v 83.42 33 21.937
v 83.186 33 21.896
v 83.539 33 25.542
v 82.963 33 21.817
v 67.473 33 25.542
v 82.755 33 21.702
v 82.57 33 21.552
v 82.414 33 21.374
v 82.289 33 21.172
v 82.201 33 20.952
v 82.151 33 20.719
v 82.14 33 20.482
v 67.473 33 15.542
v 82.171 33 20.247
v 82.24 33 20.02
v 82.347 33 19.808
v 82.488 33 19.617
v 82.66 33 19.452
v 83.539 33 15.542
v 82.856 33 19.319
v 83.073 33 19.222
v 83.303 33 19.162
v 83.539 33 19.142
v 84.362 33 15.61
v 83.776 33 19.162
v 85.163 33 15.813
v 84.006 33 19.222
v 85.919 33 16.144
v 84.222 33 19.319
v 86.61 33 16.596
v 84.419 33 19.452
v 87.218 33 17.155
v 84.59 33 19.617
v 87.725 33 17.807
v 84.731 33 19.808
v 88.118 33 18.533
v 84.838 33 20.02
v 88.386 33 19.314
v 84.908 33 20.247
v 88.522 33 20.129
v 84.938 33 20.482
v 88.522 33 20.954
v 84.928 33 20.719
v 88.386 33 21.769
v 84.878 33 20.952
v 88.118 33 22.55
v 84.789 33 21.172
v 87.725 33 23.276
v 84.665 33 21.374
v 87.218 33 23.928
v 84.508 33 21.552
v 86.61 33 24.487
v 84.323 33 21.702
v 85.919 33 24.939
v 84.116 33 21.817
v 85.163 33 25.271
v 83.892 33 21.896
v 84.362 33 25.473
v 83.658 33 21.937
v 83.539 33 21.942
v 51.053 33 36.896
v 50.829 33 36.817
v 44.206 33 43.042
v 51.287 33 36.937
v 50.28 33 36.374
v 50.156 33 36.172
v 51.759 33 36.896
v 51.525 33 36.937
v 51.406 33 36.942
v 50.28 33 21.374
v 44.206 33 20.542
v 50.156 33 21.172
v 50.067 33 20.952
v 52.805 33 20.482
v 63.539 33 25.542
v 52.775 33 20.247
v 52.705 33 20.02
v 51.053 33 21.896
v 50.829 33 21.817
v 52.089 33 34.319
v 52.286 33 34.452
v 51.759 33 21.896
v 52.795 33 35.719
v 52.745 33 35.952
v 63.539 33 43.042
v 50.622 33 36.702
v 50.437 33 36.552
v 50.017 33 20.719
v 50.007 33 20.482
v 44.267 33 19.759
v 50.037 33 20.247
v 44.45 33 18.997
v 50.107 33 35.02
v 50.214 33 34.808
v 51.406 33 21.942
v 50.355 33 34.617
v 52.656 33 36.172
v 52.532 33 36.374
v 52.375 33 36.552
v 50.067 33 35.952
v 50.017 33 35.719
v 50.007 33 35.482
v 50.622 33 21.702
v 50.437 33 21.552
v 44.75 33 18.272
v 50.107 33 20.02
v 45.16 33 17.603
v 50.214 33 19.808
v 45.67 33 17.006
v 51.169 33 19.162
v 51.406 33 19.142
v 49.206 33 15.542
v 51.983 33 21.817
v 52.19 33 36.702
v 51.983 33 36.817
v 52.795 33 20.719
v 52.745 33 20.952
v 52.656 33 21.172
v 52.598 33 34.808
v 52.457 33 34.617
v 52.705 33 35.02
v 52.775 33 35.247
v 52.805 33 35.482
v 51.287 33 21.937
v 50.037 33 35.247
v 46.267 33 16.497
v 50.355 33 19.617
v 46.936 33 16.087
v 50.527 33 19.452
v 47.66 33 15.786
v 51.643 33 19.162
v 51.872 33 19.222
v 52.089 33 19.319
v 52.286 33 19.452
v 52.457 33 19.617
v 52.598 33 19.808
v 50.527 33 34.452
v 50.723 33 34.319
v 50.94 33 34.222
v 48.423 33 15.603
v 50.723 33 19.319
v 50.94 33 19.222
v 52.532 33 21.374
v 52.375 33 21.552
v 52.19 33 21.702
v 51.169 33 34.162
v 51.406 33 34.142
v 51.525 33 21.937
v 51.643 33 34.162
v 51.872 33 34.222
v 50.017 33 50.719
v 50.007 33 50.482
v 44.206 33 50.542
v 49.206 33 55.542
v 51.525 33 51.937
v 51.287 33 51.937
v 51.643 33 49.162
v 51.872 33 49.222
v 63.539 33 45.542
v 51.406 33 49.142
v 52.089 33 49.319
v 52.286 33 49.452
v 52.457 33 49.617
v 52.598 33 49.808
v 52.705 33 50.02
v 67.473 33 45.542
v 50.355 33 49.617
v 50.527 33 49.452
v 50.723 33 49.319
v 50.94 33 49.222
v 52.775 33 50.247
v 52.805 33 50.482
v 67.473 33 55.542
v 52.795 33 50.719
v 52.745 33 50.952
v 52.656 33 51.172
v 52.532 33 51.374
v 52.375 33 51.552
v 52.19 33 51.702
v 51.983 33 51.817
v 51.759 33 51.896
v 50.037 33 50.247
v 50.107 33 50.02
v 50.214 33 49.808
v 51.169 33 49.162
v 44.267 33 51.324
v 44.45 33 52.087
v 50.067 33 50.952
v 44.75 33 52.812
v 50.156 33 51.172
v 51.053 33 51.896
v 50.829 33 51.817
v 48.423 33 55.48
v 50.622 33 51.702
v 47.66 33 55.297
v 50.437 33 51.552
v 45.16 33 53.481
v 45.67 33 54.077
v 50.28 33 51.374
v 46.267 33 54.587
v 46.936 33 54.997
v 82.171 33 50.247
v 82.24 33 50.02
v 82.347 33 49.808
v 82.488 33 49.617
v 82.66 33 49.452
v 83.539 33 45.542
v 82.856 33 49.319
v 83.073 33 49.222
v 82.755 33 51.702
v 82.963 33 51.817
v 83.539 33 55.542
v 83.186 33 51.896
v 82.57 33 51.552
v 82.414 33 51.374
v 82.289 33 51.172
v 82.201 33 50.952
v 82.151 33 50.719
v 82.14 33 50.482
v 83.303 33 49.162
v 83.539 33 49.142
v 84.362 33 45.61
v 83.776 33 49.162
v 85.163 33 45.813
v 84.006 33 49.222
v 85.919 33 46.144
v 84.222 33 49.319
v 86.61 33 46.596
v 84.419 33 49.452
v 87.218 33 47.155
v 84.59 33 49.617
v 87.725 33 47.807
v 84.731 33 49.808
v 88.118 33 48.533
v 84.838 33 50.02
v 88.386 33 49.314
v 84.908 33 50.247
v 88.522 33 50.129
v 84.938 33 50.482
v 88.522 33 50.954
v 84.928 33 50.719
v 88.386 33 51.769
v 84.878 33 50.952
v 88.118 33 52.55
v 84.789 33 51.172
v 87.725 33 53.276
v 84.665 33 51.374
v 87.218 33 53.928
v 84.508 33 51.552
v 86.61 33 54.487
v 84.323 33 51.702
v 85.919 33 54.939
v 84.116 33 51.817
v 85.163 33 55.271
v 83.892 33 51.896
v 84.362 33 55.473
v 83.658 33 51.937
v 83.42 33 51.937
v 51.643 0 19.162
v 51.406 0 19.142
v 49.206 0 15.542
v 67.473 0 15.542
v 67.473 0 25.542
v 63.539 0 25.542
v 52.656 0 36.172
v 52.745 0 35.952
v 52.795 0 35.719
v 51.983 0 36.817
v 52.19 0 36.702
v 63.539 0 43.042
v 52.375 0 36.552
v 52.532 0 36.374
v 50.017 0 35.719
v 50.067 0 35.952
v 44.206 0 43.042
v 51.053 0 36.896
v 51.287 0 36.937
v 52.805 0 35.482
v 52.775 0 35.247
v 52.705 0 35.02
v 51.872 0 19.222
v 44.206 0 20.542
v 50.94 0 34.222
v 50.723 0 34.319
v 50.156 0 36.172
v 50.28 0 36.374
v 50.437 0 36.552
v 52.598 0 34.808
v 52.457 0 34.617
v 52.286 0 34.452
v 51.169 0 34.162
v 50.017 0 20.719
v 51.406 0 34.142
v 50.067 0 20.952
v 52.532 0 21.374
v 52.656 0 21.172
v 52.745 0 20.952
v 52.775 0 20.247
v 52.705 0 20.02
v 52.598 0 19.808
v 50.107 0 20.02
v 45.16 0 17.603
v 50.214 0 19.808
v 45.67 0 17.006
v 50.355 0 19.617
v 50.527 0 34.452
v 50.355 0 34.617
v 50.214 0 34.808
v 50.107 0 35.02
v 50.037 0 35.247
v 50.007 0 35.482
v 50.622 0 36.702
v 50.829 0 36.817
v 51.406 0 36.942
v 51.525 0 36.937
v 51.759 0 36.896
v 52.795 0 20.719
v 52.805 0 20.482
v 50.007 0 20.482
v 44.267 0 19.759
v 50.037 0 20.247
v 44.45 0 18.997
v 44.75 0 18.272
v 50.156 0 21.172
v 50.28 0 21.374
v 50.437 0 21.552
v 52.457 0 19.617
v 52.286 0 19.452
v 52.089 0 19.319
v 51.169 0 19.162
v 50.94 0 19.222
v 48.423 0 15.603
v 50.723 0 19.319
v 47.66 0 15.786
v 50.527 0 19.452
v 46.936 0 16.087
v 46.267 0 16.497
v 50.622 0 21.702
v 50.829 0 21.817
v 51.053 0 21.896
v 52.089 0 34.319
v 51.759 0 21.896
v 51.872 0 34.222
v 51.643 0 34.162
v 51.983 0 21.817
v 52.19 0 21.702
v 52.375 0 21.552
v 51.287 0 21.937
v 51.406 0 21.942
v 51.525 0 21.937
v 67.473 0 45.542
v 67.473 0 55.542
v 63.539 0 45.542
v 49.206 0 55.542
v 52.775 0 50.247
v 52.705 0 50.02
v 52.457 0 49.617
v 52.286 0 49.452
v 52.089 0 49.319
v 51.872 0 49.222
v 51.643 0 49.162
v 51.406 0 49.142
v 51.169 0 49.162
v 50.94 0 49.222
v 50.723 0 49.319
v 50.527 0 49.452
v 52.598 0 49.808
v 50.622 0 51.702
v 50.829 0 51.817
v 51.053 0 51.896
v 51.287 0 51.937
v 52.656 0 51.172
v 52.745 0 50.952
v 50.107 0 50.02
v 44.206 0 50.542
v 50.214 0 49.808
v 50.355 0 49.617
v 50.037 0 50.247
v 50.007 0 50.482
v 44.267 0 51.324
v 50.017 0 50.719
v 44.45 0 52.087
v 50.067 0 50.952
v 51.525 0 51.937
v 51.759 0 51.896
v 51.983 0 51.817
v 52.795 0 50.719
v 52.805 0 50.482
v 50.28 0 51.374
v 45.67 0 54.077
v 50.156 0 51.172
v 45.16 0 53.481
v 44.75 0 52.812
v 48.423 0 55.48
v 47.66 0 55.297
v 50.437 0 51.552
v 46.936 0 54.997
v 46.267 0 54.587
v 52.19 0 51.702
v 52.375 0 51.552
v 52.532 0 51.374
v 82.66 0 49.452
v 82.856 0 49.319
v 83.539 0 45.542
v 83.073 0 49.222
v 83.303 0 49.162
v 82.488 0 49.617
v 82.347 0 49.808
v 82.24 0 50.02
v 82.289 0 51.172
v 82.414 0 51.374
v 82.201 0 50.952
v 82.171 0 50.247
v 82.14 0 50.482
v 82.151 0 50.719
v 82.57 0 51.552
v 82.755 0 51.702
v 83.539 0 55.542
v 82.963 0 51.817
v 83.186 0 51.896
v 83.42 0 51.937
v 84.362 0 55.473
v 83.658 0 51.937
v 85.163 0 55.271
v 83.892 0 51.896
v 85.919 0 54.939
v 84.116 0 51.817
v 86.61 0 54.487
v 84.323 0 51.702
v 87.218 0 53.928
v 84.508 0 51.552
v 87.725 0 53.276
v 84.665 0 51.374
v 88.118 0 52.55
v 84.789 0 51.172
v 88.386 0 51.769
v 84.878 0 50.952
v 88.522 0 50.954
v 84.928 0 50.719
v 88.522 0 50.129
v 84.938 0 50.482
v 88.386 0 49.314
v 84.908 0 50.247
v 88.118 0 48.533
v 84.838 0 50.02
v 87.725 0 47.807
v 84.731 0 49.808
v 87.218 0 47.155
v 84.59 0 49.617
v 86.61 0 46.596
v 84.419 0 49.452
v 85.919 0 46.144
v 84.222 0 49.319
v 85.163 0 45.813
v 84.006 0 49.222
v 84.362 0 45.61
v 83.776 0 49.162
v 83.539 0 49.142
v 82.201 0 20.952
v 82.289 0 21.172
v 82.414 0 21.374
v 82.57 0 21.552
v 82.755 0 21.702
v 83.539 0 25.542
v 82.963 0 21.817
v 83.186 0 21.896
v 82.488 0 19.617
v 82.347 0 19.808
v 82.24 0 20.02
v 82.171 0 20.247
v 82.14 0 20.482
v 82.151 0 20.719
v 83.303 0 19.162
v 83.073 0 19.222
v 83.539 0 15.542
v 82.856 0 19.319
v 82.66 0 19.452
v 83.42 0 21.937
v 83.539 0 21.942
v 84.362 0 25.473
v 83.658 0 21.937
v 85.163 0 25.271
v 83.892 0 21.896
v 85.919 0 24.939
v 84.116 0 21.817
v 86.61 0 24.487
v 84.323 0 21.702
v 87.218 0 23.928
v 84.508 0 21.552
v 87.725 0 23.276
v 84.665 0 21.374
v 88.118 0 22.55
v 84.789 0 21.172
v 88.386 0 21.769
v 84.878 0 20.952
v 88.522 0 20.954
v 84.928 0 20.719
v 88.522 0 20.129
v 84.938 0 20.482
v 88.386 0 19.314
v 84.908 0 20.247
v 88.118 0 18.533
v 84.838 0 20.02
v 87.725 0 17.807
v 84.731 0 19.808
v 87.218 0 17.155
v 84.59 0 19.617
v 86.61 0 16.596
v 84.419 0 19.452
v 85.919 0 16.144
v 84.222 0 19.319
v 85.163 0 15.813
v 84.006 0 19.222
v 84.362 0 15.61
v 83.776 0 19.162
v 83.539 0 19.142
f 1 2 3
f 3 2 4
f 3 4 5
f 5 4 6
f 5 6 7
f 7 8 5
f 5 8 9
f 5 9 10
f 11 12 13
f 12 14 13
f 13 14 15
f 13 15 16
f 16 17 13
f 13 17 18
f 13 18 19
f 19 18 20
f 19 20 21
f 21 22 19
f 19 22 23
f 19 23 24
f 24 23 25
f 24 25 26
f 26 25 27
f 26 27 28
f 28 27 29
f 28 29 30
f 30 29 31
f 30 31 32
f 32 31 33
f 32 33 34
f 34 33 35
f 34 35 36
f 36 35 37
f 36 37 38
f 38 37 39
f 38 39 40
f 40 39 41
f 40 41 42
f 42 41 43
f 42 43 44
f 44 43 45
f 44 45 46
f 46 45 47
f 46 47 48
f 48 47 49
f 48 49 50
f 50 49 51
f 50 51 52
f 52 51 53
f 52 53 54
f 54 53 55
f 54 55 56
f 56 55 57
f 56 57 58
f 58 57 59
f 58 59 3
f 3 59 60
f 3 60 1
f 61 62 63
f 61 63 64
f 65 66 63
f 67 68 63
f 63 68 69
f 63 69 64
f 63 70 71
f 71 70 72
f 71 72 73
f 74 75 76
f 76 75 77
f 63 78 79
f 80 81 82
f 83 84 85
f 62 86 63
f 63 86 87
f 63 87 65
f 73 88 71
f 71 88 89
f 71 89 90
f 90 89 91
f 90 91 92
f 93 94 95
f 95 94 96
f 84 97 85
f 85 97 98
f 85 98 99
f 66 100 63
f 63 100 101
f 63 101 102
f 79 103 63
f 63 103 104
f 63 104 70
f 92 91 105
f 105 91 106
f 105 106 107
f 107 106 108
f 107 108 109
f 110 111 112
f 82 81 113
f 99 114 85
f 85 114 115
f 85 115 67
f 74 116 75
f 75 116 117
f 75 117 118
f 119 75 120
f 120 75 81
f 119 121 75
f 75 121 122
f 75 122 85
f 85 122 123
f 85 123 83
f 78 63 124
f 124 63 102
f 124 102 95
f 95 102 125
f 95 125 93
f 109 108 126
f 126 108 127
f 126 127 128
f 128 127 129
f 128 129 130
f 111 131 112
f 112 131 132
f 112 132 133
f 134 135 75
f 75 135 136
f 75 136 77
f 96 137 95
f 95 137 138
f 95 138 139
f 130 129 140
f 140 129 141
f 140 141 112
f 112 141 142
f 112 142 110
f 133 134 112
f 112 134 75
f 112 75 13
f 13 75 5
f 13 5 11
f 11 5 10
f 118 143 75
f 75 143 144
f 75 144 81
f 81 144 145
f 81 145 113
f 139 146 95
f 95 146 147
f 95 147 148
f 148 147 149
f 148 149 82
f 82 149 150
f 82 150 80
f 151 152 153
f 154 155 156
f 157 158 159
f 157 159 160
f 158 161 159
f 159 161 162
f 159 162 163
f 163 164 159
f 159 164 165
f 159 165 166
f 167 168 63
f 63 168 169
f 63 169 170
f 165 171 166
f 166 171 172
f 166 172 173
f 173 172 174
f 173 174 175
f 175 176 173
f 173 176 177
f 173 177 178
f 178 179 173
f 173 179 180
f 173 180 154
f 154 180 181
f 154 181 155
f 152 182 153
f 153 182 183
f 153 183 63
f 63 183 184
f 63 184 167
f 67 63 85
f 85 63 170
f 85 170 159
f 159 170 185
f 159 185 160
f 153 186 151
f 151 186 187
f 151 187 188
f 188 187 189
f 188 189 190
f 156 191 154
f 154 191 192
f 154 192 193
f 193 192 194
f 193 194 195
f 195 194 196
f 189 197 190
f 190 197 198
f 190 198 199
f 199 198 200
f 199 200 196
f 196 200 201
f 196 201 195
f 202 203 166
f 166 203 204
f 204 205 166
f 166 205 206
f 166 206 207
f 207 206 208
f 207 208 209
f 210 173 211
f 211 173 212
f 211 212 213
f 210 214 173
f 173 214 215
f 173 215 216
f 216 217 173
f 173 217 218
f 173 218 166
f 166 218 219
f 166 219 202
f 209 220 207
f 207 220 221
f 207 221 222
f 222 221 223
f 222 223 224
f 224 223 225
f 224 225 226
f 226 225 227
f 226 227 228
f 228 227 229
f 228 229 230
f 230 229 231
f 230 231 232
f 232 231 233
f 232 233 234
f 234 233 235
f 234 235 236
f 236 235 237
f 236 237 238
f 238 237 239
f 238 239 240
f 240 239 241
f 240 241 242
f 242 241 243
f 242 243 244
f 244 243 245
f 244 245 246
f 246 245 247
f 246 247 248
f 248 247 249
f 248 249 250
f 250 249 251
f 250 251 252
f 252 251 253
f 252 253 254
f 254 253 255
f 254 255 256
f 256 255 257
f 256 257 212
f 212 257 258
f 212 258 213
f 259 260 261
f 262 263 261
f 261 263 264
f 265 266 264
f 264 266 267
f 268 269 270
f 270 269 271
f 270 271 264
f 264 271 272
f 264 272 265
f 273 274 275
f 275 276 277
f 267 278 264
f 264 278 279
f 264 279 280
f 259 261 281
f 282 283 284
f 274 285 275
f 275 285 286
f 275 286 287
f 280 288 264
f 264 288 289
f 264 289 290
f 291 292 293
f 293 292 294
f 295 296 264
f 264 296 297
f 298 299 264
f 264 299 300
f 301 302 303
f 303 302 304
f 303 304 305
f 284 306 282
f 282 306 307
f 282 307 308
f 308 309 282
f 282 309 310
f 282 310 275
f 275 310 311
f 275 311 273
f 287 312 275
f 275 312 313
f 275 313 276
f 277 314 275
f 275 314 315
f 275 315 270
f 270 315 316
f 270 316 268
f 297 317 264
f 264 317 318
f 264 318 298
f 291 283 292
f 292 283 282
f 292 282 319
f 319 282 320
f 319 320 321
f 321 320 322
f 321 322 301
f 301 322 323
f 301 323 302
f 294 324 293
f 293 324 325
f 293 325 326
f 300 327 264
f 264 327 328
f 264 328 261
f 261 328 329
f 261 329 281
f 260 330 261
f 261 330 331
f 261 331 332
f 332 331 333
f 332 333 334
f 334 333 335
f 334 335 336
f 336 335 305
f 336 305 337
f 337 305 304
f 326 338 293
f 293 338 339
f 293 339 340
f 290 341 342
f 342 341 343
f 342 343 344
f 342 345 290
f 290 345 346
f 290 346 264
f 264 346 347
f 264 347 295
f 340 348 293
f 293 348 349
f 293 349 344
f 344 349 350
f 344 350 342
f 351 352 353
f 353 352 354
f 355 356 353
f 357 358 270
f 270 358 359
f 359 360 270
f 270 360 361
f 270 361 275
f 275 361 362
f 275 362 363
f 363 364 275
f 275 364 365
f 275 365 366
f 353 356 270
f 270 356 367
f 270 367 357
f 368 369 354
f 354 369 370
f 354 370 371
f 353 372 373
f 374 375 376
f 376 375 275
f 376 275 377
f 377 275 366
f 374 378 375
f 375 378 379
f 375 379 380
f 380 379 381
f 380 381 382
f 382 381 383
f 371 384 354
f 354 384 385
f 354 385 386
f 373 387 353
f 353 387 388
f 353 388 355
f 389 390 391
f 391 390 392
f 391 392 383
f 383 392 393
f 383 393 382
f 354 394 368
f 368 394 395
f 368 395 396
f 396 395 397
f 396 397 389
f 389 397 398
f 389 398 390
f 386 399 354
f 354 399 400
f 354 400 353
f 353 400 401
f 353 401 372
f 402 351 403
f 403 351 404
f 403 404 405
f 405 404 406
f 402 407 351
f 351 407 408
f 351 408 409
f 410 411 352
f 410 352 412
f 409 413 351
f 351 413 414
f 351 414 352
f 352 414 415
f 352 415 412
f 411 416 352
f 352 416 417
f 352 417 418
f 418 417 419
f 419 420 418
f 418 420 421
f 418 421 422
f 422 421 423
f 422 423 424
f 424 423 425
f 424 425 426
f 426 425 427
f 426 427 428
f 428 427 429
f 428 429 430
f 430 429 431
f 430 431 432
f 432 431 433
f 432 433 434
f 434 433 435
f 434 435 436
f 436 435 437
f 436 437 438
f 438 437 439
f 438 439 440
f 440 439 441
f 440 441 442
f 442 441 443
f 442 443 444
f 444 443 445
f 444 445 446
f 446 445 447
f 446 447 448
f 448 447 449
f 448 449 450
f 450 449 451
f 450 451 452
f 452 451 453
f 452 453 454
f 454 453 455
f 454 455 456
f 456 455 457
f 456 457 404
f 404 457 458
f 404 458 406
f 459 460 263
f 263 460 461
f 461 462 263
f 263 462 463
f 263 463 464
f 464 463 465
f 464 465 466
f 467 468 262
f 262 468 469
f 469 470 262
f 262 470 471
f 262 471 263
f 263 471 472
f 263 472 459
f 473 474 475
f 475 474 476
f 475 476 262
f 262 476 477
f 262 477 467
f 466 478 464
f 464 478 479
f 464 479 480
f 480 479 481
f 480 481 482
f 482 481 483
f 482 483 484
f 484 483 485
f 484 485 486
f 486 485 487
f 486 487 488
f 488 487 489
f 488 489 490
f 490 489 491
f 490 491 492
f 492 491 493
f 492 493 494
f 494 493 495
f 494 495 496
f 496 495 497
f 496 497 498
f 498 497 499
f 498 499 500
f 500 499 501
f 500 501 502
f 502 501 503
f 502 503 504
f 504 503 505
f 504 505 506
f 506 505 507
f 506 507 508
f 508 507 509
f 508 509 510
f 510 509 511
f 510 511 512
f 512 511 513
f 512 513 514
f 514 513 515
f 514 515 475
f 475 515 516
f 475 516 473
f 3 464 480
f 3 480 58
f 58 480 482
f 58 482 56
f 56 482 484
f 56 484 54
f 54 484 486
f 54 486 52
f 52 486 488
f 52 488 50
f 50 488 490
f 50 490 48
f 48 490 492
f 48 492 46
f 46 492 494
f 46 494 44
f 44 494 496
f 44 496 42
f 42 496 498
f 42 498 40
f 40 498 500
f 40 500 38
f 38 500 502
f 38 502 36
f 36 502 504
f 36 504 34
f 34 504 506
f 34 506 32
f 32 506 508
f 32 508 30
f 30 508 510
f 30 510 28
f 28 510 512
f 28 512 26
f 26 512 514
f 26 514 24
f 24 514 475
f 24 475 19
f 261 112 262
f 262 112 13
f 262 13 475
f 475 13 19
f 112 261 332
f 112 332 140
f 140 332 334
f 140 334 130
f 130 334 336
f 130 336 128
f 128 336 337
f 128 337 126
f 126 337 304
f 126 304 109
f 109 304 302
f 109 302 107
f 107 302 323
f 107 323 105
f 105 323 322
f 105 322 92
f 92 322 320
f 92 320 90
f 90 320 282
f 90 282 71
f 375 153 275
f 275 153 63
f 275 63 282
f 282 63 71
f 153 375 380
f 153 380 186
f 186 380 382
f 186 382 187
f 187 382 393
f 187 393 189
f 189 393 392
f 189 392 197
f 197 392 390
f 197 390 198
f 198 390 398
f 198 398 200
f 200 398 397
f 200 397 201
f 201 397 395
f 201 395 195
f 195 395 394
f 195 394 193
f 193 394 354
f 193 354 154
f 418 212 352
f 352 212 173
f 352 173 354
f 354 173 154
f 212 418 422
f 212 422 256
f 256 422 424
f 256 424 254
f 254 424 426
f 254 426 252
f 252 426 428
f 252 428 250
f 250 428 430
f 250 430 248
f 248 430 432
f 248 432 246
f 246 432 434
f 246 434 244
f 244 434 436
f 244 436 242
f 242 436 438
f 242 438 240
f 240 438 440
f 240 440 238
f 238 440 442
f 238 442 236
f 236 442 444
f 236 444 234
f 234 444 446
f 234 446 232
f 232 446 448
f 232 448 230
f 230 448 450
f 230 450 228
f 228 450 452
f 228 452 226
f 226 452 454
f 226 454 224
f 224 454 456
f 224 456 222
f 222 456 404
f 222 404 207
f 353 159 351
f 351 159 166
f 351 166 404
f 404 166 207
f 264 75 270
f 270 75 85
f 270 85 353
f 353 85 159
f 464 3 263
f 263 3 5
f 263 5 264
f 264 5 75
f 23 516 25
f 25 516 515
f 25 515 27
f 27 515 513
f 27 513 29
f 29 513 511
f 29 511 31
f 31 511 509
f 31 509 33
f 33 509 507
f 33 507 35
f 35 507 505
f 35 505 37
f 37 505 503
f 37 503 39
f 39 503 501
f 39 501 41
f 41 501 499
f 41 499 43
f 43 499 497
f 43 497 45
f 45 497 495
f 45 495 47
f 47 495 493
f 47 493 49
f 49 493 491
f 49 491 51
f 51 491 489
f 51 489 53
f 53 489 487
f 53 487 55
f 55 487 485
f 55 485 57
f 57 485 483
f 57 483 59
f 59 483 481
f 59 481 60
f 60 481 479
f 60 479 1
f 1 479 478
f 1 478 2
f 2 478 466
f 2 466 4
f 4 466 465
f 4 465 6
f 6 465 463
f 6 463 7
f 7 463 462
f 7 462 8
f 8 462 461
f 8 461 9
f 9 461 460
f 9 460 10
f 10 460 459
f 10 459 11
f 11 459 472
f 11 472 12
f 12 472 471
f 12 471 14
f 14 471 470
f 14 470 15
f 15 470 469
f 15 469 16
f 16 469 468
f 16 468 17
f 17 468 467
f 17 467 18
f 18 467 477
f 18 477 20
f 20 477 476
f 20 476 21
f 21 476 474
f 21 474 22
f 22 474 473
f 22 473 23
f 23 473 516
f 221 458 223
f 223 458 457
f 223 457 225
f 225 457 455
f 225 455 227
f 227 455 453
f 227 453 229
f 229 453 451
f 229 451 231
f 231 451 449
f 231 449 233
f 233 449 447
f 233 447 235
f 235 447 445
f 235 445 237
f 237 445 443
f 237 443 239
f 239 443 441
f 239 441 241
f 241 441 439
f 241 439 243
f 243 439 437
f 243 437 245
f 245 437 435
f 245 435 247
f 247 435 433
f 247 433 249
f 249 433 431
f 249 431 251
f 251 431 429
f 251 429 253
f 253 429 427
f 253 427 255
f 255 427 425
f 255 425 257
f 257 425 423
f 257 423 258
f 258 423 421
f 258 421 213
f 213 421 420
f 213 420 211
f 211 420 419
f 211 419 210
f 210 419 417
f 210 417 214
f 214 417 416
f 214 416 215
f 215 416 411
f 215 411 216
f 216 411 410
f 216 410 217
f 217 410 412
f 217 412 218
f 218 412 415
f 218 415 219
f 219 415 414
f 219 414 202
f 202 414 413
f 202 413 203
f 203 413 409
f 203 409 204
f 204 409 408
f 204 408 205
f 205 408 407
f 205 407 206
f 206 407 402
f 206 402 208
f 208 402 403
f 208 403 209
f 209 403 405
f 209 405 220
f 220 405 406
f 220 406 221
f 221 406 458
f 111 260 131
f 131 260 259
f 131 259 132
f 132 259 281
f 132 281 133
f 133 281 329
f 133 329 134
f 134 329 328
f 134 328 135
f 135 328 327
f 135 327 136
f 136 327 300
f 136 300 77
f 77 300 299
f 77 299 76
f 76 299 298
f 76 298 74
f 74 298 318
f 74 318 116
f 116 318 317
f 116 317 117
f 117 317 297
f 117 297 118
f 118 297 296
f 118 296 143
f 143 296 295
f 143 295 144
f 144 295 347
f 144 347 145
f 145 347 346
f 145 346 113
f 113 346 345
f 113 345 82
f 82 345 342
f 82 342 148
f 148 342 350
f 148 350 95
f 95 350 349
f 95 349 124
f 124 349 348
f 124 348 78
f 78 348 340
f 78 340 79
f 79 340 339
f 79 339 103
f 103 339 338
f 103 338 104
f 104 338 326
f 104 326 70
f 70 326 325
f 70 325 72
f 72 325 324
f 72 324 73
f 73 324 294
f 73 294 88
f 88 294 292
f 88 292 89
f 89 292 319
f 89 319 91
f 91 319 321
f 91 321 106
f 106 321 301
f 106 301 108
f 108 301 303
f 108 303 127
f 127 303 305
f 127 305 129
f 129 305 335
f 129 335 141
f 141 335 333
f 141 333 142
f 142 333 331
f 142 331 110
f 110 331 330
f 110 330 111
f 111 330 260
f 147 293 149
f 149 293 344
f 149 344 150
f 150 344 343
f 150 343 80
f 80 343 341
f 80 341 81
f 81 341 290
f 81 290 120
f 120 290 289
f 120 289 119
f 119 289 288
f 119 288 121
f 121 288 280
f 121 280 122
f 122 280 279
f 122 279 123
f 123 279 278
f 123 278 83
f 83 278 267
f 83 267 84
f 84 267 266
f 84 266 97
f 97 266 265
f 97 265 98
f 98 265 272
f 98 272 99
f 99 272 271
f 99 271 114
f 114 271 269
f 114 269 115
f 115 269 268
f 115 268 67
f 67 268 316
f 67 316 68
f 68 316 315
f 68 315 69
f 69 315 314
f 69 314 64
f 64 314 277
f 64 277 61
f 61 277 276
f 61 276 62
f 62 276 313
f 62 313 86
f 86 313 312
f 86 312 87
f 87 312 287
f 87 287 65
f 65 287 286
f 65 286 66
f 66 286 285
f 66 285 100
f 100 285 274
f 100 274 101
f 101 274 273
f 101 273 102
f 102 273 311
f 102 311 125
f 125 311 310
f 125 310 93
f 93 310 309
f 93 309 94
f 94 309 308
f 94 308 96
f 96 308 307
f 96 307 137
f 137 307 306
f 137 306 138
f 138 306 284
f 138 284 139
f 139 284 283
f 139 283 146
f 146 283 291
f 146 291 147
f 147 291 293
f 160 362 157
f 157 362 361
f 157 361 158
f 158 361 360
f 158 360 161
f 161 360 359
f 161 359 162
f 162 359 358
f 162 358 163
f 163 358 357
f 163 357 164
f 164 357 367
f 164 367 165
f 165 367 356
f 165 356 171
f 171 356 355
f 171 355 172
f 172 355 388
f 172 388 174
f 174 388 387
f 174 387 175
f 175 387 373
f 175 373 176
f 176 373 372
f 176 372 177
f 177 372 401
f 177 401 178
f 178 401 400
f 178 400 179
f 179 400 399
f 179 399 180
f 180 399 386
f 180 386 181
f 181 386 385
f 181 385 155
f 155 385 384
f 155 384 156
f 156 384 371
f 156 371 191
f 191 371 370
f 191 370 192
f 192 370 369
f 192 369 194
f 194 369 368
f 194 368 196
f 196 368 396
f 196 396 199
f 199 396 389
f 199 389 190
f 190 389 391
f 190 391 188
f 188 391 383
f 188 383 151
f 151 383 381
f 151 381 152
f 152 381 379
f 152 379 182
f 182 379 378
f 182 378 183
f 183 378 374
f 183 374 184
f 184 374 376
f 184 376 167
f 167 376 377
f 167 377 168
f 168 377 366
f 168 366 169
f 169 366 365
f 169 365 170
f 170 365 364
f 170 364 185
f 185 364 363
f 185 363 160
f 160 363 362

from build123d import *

# Parameters (mm, degrees)
SKETCH_1_R      = 1.4
EXTRUDE_1_DEPTH = 33


with BuildPart() as part:
    # 草图1 → 凸台-拉伸1 (new body)
    with BuildSketch(Plane(origin=(0, 0, 0), x_dir=(1, 0, 0), z_dir=(0, 1, 0))):
        with BuildLine():
            Line((63.539198291, -45.541591726), (63.539198291, -25.541591726))
            Line((63.539198291, -25.541591726), (83.539198291, -25.541591726))
            ThreePointArc((83.539198291, -25.541591726), (88.539198291, -20.541591726), (83.539198291, -15.541591726))
            Line((83.539198291, -15.541591726), (49.205502665, -15.541591726))
            ThreePointArc((49.205502665, -15.541591726), (45.669968759, -17.006057821), (44.205502665, -20.541591726))
            Line((44.205502665, -20.541591726), (44.205502665, -50.541591726))
            ThreePointArc((44.205502665, -50.541591726), (45.669968759, -54.077125632), (49.205502665, -55.541591726))
            Line((49.205502665, -55.541591726), (83.539198291, -55.541591726))
            ThreePointArc((83.539198291, -55.541591726), (88.539198291, -50.541591726), (83.539198291, -45.541591726))
            Line((83.539198291, -45.541591726), (63.539198291, -45.541591726))
        make_face()
        with Locations(Location((83.539198291, -20.541591726, 0), (0, 0, 270))):
            Circle(SKETCH_1_R, mode=Mode.SUBTRACT)
        with Locations(Location((83.539198291, -50.541591726, 0), (0, 0, 90))):
            Circle(SKETCH_1_R, mode=Mode.SUBTRACT)
        with Locations(Location((51.406078432, -20.541591726, 0), (0, 0, 270))):
            Circle(SKETCH_1_R, mode=Mode.SUBTRACT)
        with Locations(Location((51.406078432, -35.541591726, 0), (0, 0, 270))):
            Circle(SKETCH_1_R, mode=Mode.SUBTRACT)
        with Locations(Location((51.406078432, -50.541591726, 0), (0, 0, 90))):
            Circle(SKETCH_1_R, mode=Mode.SUBTRACT)
    extrude(amount=EXTRUDE_1_DEPTH)


solid = part.part
